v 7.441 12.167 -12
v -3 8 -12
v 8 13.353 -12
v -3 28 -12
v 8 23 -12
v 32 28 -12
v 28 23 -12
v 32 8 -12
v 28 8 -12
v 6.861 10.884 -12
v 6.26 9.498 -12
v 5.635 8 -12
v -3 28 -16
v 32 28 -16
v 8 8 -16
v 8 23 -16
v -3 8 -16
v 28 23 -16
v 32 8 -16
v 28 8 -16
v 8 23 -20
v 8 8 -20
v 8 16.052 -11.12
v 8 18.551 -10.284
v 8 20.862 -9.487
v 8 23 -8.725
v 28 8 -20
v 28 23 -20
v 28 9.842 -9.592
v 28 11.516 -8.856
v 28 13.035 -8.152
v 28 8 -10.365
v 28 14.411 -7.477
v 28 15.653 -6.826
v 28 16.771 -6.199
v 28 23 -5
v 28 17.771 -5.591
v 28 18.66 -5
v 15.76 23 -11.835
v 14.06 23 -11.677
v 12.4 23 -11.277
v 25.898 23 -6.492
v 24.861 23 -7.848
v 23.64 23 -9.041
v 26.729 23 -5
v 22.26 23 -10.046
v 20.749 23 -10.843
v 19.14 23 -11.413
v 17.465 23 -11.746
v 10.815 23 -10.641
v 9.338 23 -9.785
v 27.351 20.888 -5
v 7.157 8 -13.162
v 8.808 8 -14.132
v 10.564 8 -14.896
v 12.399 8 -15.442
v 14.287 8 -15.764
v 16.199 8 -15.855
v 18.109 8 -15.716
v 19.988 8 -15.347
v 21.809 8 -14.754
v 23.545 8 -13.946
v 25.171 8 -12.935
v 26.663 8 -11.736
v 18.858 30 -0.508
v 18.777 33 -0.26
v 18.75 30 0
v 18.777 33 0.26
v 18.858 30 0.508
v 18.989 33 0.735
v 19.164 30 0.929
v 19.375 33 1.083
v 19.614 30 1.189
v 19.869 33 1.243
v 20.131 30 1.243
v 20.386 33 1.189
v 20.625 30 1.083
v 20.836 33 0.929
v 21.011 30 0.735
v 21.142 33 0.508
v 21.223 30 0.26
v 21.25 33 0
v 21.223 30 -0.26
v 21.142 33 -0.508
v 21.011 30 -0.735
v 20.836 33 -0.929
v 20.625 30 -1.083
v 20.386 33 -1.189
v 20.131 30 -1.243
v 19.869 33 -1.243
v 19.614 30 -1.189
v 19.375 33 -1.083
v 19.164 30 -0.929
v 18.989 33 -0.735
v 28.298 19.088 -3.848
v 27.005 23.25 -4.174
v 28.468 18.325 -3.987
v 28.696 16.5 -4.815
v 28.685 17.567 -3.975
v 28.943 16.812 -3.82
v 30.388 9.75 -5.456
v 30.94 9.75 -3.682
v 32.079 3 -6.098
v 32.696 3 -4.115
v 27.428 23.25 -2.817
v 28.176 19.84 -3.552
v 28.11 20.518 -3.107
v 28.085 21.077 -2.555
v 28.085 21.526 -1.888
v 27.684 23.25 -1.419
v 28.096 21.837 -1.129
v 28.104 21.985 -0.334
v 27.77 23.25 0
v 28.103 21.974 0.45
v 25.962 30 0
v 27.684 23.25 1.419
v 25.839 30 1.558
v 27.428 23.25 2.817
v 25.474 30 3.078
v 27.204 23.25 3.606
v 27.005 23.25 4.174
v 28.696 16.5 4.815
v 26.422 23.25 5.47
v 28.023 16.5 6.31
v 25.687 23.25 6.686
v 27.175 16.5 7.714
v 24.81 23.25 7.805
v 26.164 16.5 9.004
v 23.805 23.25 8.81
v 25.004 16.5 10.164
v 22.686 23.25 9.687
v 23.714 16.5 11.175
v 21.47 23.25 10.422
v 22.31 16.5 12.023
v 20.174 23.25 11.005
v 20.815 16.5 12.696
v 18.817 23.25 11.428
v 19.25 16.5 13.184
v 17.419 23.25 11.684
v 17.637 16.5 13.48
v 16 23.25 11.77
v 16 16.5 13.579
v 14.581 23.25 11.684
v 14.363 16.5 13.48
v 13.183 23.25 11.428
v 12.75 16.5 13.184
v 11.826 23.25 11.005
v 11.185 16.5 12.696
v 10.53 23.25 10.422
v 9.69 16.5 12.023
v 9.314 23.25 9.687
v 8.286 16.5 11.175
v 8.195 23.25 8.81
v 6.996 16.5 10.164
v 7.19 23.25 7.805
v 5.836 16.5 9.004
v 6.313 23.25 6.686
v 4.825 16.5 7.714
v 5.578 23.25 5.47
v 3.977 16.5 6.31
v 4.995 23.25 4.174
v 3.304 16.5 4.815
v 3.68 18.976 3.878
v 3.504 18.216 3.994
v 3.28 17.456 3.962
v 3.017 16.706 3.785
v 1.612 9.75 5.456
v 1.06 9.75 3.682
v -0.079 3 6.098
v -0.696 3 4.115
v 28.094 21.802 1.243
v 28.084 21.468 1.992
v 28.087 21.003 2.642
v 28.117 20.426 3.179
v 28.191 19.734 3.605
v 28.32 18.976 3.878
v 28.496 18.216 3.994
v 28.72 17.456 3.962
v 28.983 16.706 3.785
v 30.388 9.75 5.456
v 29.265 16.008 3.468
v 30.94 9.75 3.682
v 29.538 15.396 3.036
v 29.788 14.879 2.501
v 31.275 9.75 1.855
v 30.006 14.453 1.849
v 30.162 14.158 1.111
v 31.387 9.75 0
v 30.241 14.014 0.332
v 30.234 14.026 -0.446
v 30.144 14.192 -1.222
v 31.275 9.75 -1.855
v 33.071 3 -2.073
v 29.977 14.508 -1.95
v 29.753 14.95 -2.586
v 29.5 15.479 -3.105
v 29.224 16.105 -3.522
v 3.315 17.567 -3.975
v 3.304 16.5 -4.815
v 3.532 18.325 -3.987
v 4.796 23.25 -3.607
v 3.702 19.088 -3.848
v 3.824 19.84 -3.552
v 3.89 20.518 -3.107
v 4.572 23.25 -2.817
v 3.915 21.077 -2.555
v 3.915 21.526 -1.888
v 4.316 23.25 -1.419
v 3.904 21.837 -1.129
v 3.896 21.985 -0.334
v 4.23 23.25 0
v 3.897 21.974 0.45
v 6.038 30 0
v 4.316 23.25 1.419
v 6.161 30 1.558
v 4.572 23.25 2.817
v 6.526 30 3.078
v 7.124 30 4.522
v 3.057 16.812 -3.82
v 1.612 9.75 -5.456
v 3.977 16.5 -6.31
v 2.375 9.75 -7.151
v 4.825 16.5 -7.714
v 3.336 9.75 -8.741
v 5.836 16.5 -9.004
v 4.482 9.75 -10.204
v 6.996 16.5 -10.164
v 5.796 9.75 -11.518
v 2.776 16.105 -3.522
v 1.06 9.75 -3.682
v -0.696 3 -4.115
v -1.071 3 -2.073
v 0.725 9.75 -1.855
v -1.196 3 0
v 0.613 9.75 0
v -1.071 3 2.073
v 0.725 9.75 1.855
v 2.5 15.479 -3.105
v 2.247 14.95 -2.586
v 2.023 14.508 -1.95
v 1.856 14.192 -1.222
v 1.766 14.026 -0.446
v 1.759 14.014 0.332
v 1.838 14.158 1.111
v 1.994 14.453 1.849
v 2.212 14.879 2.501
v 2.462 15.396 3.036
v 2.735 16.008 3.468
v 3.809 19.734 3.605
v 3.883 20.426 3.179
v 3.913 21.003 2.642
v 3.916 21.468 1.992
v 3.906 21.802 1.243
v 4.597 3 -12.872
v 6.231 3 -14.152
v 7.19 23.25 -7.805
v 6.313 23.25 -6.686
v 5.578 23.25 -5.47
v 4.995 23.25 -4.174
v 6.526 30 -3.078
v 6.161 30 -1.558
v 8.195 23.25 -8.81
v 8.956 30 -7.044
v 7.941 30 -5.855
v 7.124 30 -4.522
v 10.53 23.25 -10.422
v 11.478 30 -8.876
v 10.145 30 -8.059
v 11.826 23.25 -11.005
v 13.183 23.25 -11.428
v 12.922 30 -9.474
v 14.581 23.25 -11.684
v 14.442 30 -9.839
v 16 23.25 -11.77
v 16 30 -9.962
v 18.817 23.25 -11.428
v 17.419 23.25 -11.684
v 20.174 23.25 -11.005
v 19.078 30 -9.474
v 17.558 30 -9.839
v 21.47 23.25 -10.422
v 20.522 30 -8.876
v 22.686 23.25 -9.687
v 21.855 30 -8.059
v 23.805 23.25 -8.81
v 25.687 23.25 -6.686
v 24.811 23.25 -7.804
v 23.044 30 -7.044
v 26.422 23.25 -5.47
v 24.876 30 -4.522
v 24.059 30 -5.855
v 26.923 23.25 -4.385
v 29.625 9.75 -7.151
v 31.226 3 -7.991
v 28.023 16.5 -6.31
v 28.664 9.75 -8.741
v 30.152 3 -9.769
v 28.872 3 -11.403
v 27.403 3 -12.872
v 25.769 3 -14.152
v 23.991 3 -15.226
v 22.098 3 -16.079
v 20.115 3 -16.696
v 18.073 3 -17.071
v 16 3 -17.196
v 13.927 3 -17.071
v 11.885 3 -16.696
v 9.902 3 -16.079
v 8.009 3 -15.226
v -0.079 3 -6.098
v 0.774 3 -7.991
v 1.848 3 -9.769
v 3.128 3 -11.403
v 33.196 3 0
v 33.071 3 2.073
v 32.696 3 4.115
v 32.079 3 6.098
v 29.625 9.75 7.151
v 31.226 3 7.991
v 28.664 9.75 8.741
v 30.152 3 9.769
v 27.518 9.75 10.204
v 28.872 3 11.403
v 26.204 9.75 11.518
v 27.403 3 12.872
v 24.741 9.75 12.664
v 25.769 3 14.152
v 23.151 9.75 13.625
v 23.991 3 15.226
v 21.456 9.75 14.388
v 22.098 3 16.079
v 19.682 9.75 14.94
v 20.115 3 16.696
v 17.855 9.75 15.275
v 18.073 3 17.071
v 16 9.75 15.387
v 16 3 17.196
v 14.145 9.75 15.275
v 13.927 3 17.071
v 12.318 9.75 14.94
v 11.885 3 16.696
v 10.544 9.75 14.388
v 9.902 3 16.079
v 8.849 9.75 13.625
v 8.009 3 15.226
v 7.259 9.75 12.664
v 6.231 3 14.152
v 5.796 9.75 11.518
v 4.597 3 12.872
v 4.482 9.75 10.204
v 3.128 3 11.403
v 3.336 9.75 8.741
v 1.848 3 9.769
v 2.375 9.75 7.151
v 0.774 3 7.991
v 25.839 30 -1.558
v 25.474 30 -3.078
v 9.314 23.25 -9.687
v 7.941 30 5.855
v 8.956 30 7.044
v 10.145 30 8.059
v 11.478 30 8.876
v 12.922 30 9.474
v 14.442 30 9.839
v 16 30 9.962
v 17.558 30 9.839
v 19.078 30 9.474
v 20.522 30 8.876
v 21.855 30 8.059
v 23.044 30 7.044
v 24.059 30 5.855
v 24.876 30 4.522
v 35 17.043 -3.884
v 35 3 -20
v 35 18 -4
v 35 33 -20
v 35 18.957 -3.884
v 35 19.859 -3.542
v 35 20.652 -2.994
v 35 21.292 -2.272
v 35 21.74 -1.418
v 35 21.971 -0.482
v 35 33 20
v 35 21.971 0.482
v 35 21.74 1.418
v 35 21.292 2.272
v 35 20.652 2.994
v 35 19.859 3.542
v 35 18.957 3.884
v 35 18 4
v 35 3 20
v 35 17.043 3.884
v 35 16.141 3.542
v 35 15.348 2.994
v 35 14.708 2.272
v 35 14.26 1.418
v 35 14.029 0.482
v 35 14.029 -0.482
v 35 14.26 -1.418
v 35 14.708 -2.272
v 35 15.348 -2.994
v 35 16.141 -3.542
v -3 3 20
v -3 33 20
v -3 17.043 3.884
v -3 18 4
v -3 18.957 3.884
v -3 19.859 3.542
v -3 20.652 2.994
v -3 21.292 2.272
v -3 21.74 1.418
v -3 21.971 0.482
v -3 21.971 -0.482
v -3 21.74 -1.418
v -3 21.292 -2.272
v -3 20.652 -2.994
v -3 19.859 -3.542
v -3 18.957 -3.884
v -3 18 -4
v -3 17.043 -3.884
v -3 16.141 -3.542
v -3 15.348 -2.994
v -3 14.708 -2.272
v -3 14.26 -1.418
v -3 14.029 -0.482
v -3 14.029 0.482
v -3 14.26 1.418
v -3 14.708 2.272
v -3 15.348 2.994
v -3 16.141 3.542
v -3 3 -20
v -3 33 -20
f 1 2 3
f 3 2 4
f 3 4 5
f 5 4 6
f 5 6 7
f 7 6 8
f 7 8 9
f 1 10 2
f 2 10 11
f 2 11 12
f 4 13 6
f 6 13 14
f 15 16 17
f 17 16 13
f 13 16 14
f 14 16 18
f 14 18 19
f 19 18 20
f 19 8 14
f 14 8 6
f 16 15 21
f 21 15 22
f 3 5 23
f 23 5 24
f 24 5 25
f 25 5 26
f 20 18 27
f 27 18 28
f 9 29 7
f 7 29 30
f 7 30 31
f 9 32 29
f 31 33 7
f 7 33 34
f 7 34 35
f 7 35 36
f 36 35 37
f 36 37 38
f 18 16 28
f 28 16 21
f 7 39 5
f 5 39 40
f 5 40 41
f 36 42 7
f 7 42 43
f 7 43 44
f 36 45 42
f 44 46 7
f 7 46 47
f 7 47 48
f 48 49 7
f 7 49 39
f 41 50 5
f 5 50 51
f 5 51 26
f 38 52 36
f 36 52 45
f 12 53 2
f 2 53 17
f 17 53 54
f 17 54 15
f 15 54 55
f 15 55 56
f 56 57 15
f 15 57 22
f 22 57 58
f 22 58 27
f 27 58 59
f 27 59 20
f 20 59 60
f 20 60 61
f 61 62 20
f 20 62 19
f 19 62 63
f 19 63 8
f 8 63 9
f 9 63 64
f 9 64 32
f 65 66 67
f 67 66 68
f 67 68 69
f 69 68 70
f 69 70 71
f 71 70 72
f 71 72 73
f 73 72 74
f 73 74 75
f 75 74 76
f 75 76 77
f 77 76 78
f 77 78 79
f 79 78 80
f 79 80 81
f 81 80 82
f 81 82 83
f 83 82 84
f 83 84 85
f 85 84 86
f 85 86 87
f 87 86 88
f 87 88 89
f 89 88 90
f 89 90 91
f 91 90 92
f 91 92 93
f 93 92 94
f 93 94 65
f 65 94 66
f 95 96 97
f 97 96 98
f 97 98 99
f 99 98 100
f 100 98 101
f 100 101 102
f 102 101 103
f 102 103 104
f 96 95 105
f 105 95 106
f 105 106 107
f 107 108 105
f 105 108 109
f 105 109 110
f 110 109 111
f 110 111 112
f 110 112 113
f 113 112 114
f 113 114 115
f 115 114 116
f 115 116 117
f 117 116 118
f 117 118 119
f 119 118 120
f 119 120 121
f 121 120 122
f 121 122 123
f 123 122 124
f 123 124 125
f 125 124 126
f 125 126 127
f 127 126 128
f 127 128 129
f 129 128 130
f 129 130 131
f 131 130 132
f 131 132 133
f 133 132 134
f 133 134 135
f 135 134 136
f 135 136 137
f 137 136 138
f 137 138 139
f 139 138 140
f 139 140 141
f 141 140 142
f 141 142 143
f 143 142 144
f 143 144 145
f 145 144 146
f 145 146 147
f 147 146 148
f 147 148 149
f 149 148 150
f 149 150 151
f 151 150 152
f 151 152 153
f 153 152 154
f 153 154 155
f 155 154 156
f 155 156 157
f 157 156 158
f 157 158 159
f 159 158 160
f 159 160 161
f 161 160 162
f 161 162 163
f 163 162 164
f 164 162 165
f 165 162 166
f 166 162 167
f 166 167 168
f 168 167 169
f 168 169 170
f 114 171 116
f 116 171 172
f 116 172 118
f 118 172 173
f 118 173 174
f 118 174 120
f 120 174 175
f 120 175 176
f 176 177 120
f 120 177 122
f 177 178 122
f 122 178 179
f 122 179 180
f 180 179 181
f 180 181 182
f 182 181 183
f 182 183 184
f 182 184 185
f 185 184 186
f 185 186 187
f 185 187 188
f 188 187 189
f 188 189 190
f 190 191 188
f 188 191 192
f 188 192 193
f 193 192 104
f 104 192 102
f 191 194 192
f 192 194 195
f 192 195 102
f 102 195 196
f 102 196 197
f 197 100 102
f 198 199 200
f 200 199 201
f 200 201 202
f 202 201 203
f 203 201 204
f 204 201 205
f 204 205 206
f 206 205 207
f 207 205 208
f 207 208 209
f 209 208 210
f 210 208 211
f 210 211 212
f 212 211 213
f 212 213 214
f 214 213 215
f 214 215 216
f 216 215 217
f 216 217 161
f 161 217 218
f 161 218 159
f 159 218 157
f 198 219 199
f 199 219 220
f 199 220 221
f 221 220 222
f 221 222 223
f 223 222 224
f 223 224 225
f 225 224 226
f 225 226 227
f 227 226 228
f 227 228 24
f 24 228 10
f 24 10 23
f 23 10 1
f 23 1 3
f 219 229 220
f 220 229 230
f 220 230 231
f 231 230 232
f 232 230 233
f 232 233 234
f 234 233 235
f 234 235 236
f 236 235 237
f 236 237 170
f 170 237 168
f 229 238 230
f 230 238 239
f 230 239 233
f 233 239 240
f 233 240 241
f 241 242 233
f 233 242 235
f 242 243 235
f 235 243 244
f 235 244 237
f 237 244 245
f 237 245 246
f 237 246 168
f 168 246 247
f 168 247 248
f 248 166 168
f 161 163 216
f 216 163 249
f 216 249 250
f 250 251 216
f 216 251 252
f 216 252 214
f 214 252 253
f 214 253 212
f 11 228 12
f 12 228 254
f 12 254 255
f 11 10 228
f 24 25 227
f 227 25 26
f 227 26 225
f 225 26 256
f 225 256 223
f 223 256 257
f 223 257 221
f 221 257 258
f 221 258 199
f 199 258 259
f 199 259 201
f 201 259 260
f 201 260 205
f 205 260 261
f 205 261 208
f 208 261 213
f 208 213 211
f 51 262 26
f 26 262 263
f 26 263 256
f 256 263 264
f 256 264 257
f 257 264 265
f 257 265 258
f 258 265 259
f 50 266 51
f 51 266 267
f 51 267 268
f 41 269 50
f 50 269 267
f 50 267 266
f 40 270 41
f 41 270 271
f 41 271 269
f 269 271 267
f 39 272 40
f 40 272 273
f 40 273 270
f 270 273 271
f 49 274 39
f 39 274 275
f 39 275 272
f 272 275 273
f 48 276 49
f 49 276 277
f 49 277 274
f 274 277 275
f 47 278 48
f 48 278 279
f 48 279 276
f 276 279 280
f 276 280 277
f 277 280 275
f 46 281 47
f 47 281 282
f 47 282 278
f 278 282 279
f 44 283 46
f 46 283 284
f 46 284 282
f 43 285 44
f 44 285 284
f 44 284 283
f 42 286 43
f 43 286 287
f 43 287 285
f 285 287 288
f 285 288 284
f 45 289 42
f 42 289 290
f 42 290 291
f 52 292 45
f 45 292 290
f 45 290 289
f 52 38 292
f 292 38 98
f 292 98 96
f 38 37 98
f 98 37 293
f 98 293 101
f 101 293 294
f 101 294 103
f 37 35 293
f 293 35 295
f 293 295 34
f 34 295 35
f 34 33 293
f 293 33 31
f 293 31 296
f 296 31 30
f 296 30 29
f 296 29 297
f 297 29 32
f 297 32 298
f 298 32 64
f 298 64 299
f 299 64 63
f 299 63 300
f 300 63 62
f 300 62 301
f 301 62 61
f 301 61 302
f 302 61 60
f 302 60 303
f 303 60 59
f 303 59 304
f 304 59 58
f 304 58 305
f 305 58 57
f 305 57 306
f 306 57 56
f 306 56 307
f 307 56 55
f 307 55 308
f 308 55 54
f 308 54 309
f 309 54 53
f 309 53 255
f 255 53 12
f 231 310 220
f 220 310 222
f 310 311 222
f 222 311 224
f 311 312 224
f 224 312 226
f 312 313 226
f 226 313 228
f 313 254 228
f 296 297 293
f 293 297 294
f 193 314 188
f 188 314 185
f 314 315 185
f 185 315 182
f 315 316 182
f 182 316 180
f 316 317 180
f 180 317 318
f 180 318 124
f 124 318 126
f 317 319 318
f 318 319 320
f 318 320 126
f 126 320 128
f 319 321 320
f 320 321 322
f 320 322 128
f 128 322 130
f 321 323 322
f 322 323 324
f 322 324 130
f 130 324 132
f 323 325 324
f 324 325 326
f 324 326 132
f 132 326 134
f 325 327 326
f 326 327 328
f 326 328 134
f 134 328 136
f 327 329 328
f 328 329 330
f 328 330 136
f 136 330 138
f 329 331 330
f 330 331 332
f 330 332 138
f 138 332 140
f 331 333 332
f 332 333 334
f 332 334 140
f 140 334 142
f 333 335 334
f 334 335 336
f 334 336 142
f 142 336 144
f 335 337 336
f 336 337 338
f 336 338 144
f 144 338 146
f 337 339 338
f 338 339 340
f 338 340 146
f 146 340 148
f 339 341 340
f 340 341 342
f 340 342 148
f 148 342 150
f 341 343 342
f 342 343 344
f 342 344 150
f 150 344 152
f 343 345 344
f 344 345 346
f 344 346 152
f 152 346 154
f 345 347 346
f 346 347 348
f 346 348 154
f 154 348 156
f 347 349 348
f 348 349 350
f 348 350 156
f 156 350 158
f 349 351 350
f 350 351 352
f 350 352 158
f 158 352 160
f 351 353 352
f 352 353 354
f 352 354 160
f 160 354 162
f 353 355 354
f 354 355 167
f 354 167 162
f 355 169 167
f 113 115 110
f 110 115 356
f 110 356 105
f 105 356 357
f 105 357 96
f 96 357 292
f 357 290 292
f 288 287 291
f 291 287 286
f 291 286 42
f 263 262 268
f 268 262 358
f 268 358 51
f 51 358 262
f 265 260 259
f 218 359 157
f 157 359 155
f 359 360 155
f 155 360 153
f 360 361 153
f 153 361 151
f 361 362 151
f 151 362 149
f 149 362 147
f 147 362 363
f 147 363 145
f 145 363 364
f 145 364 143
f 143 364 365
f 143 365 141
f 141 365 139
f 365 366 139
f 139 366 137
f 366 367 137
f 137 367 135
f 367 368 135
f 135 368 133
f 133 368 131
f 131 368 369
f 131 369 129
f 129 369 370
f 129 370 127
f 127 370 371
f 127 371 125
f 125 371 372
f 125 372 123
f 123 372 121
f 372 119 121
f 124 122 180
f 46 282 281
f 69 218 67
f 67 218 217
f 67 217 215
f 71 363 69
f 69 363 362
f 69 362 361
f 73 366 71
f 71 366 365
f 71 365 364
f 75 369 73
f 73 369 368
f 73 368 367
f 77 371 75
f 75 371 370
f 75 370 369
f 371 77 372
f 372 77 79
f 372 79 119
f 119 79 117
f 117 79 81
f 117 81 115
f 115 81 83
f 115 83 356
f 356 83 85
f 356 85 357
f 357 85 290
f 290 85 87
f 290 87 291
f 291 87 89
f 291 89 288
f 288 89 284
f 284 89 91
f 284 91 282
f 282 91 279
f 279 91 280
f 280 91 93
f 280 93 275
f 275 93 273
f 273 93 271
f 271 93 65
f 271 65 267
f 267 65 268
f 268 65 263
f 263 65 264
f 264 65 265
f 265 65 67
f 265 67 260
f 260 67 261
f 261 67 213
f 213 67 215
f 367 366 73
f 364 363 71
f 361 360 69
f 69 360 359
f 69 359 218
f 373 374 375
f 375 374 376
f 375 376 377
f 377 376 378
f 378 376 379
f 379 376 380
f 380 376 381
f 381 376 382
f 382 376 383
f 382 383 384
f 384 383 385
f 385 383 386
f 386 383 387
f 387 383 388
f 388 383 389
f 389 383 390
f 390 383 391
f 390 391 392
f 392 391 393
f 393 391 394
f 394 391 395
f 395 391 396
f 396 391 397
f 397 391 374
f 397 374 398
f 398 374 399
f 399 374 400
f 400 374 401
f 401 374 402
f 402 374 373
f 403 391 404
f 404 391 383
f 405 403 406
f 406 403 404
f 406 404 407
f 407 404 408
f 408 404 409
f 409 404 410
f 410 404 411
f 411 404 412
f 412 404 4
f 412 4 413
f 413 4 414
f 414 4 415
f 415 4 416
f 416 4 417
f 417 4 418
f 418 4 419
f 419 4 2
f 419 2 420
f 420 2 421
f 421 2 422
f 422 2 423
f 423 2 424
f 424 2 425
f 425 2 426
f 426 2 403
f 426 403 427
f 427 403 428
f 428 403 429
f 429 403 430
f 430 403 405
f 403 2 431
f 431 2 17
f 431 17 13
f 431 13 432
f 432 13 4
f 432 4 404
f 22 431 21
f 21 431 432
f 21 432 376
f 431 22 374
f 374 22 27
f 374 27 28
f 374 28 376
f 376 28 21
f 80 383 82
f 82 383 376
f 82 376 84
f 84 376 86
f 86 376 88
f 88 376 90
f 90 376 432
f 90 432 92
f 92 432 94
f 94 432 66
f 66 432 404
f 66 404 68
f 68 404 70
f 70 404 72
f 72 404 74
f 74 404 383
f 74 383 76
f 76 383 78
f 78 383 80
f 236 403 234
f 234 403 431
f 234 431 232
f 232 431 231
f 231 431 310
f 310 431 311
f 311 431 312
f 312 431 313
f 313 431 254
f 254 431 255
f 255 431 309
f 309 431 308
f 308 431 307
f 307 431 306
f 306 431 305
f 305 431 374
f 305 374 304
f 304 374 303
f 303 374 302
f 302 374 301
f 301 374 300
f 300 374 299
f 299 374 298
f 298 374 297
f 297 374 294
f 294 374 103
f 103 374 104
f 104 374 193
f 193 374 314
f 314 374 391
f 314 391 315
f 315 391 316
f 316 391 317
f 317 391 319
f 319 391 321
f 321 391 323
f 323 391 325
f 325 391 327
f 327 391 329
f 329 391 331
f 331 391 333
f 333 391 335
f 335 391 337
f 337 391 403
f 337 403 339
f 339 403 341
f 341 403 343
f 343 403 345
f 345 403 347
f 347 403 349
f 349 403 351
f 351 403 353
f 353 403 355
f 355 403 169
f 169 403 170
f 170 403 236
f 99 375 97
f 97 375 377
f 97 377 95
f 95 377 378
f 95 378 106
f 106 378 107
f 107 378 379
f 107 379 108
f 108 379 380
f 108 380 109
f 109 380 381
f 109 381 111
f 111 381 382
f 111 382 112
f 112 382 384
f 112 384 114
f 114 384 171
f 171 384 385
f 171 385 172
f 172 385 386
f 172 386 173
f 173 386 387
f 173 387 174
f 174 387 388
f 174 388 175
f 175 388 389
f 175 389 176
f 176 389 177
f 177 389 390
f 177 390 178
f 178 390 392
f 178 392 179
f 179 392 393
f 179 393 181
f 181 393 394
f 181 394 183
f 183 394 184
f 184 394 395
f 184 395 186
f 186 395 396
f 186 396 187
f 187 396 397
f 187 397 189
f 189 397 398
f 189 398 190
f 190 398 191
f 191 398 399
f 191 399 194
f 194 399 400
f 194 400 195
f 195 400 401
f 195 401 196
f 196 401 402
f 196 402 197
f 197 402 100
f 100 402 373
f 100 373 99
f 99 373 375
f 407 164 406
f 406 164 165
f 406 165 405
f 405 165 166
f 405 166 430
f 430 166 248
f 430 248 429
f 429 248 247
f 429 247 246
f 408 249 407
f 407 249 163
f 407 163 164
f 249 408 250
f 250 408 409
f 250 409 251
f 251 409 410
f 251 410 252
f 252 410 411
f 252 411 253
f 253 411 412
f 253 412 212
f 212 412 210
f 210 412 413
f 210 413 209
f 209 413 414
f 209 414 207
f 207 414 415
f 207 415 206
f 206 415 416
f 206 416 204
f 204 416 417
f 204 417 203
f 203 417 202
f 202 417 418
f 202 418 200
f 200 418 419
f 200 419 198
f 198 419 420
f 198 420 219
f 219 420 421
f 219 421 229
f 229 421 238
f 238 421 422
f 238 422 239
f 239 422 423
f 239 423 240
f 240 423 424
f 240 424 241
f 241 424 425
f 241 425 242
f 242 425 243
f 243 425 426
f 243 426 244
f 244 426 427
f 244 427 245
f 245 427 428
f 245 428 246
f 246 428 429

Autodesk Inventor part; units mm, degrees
ref_plane "YZ Plane" through (0, 0, 0) normal (1, 0, 0) x (0, 1, 0)
ref_plane "XZ Plane" through (0, 0, 0) normal (0, 1, 0) x (-1, 0, 0)
ref_plane "XY Plane" through (0, 0, 0) normal (0, 0, 1) x (1, 0, 0)
ref_plane "Work Plane13" through (0, 3, 0) normal (0, 1, 0) x (1, 0, 0)
sketch "Sketch45" plane through (0, 3, 0) normal (0, 1, 0) x (1, 0, 0)
  line L0 (35, -20) -> (-3, -20)
  line L1 (-3, -20) -> (-3, 20)
  line L2 (-3, 20) -> (35, 20)
  line L3 (35, 20) -> (35, -20)
  point P0 (0, 0)
  dimension "d142" = 38
  dimension "d143" = 40
extrude "Extrusion34" add sketch "Sketch45" along normal blind 30
sketch "Sketch46" plane through (0, 33, 0) normal (0, 1, 0) x (1, 0, 0)
  point P0 (0, 0)
ref_plane "Work Plane11" through (0, 0, 0) normal (0, -1, 0) x (1, 0, 0)
sketch "Sketch47" plane through (0, 0, 0) normal (0, -1, 0) x (1, 0, 0)
  circle A0 centre (16, 0) radius 18
  point P0 (0, 0)
  dimension "d146" = 36
extrude "Extrusion35" cut sketch "Sketch47" against normal blind 30 draft -15
sketch "Sketch48" plane through (0, 33, 0) normal (0, 1, 0) x (1, 0, 0)
  point P0 (0, 0)
sketch "Sketch49" plane through (0, 33, 0) normal (0, 1, 0) x (1, 0, 0)
  circle A0 centre (20, 0) radius 1.25
  point P0 (0, 0)
  dimension "d149" = 2.5
extrude "Extrusion36" cut sketch "Sketch49" against normal through all
ref_plane "Work Plane7" through (35, 3, -20) normal (0, 0, -1) x (-1, 0, 0)
sketch "Sketch58" plane through (35, 3, -20) normal (0, 0, -1) x (-1, 0, 0)
  line L0 (7, 20) -> (27, 20)
  line L1 (27, 20) -> (27, 5)
  line L2 (27, 5) -> (7, 5)
  line L3 (7, 5) -> (7, 20)
  point P0 (35, -3)
  dimension "d156" = 20
  dimension "d157" = 15
extrude "Extrusion38" cut sketch "Sketch58" against normal blind 15
ref_plane "Work Plane4" through (-3, 3, -20) normal (-1, 0, 0) x (0, 0, 1)
sketch "Sketch59" plane through (-3, 3, -20) normal (-1, 0, 0) x (0, 0, 1)
  line L0 (4, 25) -> (8, 25)
  line L1 (8, 25) -> (8, 5)
  line L2 (8, 5) -> (4, 5)
  line L3 (4, 5) -> (4, 25)
  point P0 (20, -3)
  dimension "d160" = 4
  dimension "d161" = 20
extrude "Extrusion39" cut sketch "Sketch59" against normal blind 35
ref_plane "Work Plane1" through (0, 3, 0) normal (0, 1, 0) x (1, 0, 0)
ref_plane "Work Plane6" through (0, 23, 0) normal (0, 1, 0) x (1, 0, 0)
sketch "Sketch62" plane through (-3, 3, -20) normal (-1, 0, 0) x (0, 0, 1)
  circle A0 centre (20, 15) radius 4
  point P0 (20, -3)
  dimension "d172" = 8
extrude "Extrusion42" cut sketch "Sketch62" against normal through all
properties part number "liquid port_only_v02"
